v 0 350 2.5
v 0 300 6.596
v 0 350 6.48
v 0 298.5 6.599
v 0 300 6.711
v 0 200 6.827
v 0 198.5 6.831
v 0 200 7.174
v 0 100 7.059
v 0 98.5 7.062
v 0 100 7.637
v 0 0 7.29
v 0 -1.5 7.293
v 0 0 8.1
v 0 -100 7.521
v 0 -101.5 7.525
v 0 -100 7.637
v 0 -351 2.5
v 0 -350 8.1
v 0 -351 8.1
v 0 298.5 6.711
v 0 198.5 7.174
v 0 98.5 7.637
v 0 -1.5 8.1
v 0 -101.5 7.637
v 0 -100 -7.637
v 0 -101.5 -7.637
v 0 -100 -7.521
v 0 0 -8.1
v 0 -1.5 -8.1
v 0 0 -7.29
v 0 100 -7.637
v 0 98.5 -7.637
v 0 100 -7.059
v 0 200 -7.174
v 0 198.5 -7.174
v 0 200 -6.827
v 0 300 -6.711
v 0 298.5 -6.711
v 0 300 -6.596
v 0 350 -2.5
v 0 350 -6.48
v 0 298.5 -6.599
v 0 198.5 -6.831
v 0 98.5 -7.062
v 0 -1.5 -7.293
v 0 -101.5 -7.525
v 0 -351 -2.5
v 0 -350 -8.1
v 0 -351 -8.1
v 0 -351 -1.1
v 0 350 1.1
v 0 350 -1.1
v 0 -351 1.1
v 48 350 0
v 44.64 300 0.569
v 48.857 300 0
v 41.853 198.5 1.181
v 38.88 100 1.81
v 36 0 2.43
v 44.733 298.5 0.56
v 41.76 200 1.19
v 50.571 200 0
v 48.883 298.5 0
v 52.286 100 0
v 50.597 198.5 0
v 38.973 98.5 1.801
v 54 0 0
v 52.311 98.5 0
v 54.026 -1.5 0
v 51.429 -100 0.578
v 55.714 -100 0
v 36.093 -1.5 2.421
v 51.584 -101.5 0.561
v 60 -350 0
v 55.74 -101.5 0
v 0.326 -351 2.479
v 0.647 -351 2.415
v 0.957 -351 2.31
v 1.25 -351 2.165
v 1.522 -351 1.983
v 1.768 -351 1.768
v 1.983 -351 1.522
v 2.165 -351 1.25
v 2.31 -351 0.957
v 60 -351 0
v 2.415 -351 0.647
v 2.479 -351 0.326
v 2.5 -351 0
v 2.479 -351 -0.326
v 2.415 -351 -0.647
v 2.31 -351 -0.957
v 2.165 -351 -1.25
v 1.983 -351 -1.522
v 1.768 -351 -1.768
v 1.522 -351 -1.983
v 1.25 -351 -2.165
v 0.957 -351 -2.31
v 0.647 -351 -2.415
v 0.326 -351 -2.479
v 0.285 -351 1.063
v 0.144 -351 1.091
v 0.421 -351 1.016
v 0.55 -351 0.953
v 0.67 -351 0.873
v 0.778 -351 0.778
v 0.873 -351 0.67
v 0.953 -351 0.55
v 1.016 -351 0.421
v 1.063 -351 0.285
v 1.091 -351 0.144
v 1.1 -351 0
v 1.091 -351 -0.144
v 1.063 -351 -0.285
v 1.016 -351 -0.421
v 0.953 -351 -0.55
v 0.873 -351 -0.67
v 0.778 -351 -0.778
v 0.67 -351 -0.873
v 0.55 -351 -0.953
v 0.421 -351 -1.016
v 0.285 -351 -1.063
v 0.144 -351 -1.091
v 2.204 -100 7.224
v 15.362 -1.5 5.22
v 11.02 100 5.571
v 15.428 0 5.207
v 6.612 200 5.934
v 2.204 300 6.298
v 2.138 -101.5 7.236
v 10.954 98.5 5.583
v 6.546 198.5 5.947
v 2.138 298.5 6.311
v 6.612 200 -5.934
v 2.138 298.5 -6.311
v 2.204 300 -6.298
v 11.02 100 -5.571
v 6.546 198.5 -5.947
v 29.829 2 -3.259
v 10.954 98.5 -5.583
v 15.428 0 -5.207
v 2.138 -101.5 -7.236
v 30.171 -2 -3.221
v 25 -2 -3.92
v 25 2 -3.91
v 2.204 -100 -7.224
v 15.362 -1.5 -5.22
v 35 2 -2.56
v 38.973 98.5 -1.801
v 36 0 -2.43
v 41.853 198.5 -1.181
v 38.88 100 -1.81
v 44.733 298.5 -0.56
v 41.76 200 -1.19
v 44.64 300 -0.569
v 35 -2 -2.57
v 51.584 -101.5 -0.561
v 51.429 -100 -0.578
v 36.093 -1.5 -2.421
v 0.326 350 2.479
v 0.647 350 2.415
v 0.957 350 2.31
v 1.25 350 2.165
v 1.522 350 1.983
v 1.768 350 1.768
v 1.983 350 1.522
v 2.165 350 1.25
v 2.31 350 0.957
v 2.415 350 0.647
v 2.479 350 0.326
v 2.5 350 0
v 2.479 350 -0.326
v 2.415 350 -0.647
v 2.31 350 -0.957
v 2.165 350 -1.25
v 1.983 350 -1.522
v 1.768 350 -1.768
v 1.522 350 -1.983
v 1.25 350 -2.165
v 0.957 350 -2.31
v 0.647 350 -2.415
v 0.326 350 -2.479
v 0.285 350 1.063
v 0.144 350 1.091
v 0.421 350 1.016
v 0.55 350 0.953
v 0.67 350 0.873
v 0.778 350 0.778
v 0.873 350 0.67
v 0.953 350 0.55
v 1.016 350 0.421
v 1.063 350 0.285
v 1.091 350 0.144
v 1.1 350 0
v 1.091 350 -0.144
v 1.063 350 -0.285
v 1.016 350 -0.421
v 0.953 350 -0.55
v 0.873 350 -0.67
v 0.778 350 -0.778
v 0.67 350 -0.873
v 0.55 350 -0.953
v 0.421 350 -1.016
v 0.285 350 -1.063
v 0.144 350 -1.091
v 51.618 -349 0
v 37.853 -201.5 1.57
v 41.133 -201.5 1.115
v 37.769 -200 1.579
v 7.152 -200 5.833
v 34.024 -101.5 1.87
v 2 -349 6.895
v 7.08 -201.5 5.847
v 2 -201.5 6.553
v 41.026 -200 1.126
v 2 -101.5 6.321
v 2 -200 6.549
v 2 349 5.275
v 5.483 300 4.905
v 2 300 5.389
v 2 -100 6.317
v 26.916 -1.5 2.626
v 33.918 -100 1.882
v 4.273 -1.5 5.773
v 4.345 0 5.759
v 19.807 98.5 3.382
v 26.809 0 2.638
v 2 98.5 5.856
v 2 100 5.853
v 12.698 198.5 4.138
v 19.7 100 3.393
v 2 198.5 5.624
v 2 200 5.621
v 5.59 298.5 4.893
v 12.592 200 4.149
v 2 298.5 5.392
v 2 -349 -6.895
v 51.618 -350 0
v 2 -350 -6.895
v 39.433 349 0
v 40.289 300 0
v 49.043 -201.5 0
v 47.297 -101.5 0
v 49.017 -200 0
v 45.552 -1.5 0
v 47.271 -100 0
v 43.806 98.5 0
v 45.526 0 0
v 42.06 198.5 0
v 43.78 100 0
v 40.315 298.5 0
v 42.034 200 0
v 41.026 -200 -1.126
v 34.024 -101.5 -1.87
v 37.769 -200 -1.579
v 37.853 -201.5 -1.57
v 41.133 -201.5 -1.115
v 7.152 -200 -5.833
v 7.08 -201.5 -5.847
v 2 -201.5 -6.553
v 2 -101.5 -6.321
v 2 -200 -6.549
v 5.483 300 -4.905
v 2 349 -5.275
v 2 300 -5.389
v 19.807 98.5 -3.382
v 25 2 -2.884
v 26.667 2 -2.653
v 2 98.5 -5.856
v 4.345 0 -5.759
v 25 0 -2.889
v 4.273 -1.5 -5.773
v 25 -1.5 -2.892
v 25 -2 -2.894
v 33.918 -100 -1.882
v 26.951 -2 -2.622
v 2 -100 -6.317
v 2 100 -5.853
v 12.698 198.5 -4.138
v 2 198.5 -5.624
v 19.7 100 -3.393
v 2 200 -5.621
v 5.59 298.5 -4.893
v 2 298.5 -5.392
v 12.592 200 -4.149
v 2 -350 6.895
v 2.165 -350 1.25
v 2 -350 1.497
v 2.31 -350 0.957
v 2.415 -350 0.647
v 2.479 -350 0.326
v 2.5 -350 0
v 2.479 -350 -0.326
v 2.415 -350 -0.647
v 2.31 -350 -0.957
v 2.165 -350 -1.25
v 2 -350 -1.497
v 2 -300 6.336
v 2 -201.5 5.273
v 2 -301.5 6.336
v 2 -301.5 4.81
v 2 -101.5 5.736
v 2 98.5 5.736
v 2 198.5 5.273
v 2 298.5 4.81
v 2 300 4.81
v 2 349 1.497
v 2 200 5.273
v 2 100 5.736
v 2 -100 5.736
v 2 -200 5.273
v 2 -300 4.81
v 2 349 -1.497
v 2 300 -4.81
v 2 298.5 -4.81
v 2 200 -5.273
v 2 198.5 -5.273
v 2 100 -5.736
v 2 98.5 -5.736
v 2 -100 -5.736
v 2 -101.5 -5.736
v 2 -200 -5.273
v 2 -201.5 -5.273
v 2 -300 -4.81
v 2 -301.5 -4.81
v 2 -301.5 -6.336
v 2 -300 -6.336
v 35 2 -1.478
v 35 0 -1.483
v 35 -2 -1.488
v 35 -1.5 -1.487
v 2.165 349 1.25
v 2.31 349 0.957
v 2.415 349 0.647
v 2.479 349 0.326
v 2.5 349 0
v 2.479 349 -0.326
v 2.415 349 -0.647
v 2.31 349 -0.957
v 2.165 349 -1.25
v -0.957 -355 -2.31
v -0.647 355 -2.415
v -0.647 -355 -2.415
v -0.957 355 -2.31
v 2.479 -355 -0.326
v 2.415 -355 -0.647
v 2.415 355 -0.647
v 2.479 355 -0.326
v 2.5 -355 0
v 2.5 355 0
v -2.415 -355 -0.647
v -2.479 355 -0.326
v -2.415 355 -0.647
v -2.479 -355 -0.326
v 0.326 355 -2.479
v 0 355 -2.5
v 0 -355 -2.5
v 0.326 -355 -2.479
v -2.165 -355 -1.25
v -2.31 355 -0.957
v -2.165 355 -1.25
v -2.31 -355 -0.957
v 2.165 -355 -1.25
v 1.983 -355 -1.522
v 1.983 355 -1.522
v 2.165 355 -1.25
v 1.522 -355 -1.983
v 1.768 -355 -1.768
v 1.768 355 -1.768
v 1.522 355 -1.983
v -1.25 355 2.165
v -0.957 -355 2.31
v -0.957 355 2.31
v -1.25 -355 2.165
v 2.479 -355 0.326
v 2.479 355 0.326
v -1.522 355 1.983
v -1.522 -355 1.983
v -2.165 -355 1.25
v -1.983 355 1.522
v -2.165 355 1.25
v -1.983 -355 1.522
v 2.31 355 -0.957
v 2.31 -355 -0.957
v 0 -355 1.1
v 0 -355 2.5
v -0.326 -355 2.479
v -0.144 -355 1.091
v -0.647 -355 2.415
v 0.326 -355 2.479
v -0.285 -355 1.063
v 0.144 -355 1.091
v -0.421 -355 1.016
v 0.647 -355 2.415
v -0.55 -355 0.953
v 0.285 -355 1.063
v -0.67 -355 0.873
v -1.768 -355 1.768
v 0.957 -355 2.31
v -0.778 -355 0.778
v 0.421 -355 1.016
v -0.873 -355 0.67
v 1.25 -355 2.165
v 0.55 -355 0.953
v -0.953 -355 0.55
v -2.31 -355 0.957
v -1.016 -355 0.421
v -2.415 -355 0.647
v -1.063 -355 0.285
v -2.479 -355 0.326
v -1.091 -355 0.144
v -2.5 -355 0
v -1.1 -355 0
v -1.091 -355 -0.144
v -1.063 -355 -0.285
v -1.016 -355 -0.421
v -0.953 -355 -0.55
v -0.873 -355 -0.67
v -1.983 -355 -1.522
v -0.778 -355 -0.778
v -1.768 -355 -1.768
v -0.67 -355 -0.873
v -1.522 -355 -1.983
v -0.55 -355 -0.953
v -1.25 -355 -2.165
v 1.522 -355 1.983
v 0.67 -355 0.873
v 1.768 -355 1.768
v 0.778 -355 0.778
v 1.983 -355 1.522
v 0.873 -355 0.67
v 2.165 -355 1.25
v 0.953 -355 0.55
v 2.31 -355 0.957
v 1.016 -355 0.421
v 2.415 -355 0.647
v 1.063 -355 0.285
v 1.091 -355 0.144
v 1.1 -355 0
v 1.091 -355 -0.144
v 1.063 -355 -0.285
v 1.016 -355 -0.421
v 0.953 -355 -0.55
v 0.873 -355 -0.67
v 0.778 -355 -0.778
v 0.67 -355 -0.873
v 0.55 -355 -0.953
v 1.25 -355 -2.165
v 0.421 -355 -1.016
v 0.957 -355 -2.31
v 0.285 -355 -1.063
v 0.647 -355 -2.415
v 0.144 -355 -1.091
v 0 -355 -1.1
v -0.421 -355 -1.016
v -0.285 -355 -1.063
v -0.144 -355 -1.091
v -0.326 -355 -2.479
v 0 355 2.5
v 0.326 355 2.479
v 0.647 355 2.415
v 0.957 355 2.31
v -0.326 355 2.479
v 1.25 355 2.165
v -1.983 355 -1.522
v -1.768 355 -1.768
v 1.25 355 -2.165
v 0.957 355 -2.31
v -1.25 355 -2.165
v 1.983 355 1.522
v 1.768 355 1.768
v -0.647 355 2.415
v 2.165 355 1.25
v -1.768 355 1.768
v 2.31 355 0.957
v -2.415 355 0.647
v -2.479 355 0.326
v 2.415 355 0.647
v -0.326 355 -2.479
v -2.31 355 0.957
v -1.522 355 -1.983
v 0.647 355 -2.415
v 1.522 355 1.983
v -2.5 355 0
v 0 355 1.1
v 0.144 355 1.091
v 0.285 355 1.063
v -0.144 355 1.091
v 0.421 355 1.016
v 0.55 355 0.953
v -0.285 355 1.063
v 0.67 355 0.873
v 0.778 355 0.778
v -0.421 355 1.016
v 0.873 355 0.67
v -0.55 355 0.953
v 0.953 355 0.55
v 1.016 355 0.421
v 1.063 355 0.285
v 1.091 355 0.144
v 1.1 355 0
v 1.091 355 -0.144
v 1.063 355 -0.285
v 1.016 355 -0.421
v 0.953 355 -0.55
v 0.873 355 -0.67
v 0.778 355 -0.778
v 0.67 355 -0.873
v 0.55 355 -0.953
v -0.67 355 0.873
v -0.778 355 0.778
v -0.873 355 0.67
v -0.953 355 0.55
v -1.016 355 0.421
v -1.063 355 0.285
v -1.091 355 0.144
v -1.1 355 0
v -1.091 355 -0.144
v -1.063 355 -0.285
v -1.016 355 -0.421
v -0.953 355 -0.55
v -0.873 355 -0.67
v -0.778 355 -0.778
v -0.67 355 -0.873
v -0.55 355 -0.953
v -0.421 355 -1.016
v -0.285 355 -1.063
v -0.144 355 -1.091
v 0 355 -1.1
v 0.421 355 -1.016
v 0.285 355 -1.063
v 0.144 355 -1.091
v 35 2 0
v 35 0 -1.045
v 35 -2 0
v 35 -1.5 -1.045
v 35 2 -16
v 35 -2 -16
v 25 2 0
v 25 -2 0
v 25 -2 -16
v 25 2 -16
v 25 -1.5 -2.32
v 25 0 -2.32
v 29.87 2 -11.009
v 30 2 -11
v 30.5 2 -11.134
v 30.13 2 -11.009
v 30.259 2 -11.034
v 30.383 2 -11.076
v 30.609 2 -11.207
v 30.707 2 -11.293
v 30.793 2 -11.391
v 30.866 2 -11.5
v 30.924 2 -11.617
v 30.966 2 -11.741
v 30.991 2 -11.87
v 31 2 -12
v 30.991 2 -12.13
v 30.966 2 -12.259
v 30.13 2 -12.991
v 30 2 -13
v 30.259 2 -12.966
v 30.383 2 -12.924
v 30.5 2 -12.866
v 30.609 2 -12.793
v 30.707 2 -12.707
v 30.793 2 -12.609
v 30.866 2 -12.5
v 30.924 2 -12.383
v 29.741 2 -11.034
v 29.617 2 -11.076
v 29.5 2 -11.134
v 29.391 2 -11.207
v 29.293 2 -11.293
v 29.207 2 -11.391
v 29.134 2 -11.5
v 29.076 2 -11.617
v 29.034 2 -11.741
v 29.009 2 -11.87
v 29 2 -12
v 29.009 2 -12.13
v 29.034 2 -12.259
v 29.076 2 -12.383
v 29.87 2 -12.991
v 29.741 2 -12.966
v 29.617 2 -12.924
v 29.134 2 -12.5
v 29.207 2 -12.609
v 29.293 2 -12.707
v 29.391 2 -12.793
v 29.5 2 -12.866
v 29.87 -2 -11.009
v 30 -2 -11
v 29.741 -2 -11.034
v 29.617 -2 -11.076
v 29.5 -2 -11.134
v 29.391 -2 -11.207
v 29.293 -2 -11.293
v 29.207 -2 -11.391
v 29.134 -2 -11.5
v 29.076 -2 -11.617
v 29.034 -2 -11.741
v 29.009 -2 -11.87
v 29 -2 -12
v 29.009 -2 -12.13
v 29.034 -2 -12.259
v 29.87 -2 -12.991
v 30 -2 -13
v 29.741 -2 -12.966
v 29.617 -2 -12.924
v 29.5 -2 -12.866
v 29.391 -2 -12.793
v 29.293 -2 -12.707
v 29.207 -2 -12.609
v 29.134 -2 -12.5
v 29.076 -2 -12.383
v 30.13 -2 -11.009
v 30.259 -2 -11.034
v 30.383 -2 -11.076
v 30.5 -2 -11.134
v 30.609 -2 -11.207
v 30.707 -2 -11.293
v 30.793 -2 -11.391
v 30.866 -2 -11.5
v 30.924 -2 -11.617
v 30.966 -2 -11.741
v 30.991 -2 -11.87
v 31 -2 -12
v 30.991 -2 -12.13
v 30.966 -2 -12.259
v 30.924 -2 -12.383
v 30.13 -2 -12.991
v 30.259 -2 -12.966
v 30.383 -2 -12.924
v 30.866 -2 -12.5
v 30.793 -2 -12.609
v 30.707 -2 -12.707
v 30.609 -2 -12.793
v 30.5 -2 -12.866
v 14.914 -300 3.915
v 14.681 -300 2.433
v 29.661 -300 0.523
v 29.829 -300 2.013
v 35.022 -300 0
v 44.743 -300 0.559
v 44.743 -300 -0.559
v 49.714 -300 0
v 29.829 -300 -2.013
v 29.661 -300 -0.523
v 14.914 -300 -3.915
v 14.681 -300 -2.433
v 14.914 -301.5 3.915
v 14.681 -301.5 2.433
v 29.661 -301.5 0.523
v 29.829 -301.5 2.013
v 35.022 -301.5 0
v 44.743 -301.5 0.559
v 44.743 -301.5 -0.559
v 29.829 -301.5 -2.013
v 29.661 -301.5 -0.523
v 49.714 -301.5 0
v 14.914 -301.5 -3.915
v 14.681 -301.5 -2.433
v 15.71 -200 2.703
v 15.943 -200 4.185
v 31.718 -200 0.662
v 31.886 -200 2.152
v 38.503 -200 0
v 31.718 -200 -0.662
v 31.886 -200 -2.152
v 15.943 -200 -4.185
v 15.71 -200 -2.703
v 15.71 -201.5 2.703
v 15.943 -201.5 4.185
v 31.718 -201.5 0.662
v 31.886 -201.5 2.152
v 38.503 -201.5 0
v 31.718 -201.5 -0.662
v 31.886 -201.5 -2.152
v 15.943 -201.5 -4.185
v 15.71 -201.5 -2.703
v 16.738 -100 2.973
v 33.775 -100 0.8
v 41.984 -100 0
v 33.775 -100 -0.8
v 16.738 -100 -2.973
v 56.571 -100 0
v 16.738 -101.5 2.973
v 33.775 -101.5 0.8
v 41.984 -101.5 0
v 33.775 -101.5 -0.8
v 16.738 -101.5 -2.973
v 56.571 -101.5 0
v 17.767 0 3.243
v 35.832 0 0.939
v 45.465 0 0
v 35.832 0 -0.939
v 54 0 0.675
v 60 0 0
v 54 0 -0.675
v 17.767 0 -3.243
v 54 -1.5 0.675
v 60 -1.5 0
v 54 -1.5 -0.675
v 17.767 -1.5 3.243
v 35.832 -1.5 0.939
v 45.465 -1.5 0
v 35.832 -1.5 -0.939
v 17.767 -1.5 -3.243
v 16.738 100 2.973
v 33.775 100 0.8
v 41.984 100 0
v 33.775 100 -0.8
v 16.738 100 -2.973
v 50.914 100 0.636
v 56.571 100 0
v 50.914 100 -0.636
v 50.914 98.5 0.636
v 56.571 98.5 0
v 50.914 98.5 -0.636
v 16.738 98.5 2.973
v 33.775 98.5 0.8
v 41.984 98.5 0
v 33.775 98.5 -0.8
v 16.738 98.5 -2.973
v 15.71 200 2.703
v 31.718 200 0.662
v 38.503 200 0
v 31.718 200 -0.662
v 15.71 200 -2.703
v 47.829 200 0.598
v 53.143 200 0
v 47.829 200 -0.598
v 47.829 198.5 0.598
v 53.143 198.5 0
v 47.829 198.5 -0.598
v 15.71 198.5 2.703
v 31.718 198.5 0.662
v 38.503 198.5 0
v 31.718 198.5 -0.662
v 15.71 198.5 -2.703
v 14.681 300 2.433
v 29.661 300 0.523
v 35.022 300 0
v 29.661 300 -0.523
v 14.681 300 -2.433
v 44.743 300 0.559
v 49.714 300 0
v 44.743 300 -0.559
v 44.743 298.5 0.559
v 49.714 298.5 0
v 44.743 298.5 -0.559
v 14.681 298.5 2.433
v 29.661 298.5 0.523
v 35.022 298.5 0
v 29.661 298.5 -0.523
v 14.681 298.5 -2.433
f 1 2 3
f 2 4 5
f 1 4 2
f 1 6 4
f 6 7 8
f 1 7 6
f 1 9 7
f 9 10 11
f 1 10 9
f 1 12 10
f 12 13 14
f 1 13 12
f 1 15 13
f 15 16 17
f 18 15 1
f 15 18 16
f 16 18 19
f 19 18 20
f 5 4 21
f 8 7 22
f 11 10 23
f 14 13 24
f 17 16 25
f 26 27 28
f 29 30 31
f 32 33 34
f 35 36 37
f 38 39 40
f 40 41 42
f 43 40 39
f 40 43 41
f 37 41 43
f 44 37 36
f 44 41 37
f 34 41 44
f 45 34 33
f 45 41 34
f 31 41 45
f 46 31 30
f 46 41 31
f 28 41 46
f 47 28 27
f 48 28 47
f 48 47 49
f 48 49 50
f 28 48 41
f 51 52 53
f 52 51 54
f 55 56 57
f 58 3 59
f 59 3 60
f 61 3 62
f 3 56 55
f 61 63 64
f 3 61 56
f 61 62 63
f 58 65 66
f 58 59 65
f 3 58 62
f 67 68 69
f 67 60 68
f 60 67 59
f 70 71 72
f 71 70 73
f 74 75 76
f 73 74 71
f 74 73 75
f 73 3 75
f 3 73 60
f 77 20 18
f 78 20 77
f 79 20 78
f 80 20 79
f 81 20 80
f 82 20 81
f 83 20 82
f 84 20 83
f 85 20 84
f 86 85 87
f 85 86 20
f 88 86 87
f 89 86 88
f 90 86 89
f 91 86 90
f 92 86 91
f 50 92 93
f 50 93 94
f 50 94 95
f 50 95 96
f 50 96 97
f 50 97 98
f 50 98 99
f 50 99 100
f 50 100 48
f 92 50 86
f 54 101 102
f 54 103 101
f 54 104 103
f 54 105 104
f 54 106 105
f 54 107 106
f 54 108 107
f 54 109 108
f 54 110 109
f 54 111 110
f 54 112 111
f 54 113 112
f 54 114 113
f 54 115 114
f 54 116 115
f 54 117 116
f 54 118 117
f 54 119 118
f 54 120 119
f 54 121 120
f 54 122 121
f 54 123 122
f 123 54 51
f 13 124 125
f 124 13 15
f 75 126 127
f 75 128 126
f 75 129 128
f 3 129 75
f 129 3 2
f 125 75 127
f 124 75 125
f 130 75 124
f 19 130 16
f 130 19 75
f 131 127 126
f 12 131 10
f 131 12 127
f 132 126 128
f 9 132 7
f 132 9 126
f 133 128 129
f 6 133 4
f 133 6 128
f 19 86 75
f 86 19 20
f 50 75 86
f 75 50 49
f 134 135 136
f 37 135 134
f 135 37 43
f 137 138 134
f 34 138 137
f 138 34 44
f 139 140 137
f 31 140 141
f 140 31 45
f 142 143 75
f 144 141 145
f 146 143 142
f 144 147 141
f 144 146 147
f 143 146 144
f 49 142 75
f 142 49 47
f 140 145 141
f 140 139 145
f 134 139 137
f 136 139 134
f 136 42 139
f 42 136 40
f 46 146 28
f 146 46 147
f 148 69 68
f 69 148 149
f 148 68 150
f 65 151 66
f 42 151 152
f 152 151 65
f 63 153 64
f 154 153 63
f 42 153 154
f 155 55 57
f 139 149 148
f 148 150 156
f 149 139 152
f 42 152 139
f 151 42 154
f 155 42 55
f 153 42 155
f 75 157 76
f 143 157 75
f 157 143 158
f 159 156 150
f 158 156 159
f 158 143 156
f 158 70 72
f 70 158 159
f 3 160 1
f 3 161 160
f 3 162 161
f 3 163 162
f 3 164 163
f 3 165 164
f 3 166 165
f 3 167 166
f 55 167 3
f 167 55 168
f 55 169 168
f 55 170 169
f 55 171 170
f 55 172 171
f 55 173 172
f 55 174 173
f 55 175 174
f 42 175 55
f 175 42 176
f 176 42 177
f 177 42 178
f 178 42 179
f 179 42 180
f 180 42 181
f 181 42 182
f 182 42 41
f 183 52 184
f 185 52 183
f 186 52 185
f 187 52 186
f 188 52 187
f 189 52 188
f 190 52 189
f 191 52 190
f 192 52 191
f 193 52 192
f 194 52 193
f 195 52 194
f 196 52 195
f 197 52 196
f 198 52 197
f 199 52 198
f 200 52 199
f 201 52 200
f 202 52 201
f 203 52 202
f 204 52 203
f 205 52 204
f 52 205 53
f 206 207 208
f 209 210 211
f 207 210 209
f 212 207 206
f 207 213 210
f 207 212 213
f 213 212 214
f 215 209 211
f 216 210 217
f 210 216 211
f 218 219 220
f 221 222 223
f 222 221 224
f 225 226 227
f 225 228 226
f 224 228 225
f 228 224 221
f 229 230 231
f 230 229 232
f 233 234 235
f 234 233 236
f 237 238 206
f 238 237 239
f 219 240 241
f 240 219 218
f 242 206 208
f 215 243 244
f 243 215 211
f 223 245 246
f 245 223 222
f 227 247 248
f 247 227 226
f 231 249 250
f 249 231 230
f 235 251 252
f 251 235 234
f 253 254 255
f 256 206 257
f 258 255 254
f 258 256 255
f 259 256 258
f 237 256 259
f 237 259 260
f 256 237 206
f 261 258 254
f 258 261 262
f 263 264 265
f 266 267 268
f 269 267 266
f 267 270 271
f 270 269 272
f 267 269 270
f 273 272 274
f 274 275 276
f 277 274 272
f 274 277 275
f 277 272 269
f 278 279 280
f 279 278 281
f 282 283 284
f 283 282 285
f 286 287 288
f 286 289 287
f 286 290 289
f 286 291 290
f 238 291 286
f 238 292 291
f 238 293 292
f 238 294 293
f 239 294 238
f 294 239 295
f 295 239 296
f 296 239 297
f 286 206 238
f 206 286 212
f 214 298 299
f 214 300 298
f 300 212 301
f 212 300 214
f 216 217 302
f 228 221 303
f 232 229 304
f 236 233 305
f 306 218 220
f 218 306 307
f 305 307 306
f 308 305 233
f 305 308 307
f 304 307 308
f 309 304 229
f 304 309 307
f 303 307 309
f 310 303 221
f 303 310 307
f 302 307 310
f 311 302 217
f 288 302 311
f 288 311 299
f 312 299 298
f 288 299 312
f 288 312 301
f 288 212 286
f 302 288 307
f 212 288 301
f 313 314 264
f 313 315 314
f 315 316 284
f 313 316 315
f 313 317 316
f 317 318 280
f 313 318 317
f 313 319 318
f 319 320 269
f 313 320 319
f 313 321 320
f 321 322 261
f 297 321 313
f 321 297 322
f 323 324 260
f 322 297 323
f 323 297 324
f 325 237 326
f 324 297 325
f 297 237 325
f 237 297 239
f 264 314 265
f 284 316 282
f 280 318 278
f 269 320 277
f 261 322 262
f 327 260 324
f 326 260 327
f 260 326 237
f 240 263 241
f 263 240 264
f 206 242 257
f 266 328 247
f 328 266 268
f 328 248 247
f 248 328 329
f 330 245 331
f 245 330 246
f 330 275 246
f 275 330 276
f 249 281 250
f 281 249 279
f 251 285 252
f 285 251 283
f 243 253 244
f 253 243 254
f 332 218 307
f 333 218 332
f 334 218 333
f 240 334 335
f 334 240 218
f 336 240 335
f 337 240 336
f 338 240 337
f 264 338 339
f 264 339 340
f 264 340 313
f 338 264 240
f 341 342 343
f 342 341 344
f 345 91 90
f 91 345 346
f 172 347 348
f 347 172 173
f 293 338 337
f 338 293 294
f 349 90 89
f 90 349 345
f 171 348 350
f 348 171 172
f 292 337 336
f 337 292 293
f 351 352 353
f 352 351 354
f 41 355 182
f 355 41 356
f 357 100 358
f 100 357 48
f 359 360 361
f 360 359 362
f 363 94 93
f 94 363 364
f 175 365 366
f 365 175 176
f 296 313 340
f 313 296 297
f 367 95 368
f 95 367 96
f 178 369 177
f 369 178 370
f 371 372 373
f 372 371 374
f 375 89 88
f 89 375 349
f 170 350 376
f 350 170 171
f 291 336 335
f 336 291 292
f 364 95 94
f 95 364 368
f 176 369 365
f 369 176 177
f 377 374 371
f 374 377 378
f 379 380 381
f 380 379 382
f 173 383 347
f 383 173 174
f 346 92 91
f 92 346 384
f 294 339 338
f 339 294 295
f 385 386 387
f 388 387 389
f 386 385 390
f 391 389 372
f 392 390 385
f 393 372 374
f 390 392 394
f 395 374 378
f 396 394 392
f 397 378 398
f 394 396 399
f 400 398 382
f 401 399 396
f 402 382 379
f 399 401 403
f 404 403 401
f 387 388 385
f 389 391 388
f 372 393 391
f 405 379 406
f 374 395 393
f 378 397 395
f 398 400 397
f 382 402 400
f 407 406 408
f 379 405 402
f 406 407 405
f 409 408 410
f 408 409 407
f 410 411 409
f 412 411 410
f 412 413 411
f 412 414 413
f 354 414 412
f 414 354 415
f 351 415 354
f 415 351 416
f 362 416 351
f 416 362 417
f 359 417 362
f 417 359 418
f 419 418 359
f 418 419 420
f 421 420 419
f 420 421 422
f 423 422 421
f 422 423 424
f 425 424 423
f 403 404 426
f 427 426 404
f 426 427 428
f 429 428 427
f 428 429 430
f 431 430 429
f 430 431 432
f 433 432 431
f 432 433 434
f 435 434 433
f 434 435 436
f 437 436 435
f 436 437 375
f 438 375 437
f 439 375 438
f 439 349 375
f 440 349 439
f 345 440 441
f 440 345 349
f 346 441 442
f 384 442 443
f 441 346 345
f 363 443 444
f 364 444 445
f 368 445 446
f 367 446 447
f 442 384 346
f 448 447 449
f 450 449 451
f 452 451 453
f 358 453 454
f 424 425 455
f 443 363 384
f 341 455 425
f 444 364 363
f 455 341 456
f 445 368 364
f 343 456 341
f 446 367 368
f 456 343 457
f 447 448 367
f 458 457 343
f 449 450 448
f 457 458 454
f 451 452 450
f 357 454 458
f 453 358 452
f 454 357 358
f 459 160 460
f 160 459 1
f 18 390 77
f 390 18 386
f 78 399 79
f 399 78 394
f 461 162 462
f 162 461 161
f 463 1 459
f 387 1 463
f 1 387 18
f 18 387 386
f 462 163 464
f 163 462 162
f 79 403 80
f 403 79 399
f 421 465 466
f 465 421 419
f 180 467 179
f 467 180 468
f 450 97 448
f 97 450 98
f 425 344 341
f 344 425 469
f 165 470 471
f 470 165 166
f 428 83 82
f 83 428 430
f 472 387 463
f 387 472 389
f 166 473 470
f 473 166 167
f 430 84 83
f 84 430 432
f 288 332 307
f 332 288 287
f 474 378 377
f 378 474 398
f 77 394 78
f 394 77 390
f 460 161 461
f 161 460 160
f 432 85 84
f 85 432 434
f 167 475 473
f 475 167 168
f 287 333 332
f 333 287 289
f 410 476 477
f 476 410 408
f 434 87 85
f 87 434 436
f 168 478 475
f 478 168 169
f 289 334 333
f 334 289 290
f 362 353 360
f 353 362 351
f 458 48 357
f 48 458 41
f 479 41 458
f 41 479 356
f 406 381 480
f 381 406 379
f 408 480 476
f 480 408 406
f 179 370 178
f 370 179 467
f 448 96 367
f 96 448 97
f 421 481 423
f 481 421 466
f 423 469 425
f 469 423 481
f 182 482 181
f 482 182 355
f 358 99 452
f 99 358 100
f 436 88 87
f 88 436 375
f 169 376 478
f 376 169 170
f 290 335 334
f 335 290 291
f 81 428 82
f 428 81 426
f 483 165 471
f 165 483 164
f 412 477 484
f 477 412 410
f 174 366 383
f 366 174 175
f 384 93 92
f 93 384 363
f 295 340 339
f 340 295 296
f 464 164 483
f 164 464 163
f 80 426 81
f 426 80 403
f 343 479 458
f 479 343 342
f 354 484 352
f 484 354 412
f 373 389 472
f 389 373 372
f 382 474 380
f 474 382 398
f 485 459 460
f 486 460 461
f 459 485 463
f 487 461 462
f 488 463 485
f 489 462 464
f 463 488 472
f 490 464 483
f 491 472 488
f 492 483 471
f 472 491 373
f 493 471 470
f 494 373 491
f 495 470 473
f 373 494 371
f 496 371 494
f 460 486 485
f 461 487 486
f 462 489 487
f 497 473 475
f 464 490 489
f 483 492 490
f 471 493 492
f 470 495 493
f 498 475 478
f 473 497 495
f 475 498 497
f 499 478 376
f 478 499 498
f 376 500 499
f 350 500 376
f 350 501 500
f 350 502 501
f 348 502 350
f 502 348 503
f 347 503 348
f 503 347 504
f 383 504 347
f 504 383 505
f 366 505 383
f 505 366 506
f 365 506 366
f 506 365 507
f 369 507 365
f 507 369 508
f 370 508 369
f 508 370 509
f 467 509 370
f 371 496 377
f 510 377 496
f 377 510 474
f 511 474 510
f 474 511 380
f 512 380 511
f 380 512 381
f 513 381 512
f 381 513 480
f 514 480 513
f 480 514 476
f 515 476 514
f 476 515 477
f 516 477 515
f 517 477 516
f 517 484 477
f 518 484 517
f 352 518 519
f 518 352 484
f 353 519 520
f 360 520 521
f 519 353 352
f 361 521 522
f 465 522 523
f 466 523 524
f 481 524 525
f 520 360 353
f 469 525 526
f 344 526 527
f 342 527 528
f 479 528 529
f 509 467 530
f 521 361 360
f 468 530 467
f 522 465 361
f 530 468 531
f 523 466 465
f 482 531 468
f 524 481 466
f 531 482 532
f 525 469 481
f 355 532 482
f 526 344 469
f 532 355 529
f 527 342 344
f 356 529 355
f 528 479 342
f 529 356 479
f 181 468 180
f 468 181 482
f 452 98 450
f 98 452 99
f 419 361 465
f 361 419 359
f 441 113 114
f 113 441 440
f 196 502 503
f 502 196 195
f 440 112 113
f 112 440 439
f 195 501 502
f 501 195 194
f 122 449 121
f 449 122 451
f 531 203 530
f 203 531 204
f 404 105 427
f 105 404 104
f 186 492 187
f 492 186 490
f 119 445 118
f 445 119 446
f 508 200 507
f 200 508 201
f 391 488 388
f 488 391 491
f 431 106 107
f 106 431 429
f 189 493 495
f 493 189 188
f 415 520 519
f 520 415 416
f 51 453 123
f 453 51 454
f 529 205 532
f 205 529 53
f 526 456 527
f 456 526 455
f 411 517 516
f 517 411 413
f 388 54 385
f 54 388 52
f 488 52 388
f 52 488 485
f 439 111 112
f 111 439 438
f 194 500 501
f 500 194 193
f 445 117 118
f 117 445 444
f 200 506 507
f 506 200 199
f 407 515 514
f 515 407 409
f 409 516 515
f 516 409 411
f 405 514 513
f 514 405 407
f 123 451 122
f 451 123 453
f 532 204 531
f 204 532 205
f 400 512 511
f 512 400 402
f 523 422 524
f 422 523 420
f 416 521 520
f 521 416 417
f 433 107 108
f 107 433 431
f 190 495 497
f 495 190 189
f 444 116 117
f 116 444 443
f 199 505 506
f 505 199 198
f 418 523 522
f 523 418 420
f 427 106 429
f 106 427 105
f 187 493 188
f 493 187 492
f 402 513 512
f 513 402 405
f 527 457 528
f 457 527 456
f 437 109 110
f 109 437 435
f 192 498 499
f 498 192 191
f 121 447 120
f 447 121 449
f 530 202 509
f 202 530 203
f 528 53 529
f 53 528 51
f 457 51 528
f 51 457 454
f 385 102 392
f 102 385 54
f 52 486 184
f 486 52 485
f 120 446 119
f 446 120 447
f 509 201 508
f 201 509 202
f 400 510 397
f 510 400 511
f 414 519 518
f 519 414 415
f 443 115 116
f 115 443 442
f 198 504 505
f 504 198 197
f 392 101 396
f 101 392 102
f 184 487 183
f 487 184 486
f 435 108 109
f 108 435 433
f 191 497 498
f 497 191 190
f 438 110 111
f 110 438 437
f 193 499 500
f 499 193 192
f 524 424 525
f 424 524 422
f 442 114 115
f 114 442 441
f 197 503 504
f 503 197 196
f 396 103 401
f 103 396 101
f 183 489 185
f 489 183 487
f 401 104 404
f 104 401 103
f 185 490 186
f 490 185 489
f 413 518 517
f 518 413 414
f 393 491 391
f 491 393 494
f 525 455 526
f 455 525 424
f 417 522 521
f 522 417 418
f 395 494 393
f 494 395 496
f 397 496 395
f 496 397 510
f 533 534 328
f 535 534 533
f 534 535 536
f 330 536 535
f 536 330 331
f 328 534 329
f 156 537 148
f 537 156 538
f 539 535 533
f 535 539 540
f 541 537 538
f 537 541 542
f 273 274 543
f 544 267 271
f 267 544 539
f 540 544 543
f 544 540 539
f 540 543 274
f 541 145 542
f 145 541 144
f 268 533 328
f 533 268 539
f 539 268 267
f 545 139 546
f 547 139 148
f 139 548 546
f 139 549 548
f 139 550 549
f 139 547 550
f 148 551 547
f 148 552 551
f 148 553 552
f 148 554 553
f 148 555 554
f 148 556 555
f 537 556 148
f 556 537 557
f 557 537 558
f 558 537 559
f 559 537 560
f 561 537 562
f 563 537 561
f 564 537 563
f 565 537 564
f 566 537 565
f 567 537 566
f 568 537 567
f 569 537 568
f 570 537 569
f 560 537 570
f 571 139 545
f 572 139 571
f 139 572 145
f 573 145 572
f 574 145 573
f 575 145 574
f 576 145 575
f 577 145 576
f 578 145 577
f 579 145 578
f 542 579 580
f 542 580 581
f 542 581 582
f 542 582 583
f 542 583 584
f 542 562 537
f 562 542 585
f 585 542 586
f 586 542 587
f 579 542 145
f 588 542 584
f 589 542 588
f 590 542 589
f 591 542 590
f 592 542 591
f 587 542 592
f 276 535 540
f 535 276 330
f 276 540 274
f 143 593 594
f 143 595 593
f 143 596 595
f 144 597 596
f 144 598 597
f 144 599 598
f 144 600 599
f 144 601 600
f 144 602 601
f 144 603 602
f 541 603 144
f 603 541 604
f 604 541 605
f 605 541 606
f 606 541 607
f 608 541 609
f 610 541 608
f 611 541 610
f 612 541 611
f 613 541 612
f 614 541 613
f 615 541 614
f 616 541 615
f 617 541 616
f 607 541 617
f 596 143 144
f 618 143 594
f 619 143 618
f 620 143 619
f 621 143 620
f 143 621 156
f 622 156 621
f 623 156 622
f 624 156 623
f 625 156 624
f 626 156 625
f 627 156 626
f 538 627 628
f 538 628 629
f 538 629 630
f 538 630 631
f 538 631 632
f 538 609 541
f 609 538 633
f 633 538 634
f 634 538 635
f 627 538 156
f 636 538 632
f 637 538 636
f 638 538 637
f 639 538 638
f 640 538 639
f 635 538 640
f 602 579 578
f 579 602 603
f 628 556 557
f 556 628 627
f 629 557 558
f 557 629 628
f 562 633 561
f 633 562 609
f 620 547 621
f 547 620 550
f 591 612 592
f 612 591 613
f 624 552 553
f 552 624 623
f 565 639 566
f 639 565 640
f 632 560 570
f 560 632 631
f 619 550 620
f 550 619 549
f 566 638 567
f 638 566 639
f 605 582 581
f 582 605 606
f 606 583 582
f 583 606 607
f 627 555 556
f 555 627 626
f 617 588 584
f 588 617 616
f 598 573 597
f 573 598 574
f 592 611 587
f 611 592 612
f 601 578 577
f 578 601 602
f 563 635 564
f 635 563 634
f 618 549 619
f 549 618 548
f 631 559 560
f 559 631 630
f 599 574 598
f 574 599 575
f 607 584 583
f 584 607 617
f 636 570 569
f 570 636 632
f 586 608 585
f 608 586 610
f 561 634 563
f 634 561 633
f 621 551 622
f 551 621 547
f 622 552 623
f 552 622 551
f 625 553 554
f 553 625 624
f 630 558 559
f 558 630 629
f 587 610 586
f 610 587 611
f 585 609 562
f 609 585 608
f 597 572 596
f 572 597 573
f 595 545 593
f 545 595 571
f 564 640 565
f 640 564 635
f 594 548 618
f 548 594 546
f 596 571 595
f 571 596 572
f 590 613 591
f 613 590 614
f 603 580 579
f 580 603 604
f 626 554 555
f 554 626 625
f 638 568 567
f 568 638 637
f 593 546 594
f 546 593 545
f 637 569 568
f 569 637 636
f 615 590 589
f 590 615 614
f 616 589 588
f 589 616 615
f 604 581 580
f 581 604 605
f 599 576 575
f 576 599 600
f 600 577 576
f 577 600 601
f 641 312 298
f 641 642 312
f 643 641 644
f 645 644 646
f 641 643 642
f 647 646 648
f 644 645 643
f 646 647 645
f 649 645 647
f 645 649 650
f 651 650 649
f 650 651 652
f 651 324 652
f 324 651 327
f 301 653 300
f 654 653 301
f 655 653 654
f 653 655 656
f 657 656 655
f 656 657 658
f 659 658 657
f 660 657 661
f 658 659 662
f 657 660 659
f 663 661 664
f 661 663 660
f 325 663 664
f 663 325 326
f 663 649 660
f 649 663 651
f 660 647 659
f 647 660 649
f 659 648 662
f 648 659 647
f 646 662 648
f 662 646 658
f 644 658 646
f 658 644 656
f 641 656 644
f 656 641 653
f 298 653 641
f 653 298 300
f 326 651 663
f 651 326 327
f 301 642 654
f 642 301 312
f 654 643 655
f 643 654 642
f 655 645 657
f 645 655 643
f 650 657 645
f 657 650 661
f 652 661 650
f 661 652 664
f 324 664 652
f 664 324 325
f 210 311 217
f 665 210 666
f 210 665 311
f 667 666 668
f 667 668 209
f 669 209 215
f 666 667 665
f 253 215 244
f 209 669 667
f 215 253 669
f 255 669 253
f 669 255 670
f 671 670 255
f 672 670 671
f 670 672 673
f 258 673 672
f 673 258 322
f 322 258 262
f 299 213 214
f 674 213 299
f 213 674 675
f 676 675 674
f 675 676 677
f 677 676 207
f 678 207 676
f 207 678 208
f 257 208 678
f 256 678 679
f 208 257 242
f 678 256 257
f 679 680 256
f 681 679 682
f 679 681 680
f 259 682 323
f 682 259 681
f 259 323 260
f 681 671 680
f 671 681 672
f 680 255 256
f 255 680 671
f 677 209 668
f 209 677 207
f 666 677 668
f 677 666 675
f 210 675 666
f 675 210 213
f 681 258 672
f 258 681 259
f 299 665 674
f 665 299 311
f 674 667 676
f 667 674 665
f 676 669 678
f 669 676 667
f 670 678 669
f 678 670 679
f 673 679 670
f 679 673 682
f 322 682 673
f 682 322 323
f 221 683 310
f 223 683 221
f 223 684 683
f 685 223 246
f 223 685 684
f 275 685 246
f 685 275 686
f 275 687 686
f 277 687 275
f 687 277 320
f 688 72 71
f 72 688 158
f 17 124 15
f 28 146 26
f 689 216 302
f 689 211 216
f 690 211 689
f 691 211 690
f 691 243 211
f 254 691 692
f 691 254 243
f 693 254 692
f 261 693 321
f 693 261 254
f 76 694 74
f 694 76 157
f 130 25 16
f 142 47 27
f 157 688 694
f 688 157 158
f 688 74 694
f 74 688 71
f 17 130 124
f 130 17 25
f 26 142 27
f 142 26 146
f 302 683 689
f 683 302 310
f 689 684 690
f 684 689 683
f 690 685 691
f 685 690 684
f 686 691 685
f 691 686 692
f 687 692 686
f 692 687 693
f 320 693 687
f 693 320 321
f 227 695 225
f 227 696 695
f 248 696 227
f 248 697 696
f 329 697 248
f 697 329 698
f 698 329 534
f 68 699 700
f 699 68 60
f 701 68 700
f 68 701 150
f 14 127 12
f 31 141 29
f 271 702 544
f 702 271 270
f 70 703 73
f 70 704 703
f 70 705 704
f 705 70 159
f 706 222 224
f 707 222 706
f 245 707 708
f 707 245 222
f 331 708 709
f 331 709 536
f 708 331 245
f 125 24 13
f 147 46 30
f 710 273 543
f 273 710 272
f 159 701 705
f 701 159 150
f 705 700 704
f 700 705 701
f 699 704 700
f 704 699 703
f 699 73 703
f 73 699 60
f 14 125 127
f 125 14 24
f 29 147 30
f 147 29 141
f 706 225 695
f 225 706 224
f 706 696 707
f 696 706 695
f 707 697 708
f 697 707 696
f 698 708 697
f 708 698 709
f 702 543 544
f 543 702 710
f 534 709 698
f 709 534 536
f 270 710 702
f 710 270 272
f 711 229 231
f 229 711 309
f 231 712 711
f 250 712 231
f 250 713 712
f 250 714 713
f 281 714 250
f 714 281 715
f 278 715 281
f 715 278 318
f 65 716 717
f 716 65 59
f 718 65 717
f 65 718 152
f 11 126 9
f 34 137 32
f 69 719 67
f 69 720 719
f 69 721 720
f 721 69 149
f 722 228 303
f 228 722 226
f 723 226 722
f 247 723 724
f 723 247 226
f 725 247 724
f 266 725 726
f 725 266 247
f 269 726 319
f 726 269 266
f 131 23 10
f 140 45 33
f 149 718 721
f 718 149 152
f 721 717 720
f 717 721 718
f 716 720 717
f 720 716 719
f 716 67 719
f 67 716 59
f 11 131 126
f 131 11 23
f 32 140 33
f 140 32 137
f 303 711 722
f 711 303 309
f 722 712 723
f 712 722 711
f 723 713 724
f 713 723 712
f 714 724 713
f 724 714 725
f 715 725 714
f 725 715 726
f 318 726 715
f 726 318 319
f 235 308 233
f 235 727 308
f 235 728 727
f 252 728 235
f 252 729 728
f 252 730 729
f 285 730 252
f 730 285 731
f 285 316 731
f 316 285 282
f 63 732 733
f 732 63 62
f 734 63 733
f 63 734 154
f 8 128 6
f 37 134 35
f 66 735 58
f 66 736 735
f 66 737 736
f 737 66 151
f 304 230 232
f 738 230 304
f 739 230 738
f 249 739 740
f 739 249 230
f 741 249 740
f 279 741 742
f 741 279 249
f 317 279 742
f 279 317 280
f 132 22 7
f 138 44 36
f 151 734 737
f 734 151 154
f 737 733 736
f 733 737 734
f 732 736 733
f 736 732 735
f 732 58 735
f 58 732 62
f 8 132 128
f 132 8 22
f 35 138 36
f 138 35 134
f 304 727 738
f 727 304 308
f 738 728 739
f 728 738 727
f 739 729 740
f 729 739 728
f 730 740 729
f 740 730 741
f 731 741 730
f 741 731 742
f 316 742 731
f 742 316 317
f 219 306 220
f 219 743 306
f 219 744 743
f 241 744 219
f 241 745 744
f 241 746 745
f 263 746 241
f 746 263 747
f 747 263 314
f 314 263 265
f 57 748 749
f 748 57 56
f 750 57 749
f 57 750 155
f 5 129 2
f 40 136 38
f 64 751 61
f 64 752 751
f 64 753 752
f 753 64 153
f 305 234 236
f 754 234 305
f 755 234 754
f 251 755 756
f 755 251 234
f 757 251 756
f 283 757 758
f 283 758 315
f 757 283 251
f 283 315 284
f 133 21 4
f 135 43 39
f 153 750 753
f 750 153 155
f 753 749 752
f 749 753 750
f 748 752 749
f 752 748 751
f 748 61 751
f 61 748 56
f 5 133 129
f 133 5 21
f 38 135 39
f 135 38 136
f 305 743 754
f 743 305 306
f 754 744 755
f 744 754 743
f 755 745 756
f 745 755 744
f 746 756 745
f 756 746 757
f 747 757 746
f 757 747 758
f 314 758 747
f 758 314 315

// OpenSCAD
// file: ../../lib/profiles.scad
// Knihovna leteckych profilu pro RC letadlo
// Vsechny rozmery v milimetrech

// Clark-Y profil (zjednoduseny) - pro kridlo
// Vraci 2D polygon profilu normalizovany na hloubku 1
function clark_y_upper() = [
    [1.000, 0.0013],
    [0.950, 0.0114],
    [0.900, 0.0208],
    [0.800, 0.0375],
    [0.700, 0.0518],
    [0.600, 0.0636],
    [0.500, 0.0724],
    [0.400, 0.0780],
    [0.300, 0.0788],
    [0.250, 0.0767],
    [0.200, 0.0726],
    [0.150, 0.0661],
    [0.100, 0.0563],
    [0.075, 0.0496],
    [0.050, 0.0413],
    [0.025, 0.0299],
    [0.0125,0.0215],
    [0.000, 0.0000]
];

function clark_y_lower() = [
    [0.000, 0.0000],
    [0.0125,-0.0095],
    [0.025, -0.0116],
    [0.050, -0.0126],
    [0.075, -0.0119],
    [0.100, -0.0104],
    [0.150, -0.0069],
    [0.200, -0.0040],
    [0.250, -0.0018],
    [0.300, -0.0005],
    [0.400, 0.0003],
    [0.500, 0.0000],
    [0.600, -0.0003],
    [0.700, -0.0003],
    [0.800, 0.0000],
    [0.900, 0.0005],
    [0.950, 0.0007],
    [1.000, 0.0013]
];

function clark_y_points() = concat(clark_y_upper(), clark_y_lower());

module clark_y_profile(chord) {
    pts = concat(clark_y_upper(), clark_y_lower());
    scale([chord, chord, 1])
        polygon([for (p = pts) [p[0], p[1]]]);
}

// NACA 0009 symetricky profil - pro ocasni plochy
function naca0009_half() = [
    [0.000, 0.0000],
    [0.0125, 0.0112],
    [0.025, 0.0155],
    [0.050, 0.0212],
    [0.075, 0.0253],
    [0.100, 0.0283],
    [0.150, 0.0326],
    [0.200, 0.0350],
    [0.250, 0.0361],
    [0.300, 0.0362],
    [0.400, 0.0341],
    [0.500, 0.0298],
    [0.600, 0.0241],
    [0.700, 0.0177],
    [0.800, 0.0112],
    [0.900, 0.0053],
    [0.950, 0.0027],
    [1.000, 0.0005]
];

module naca0009_profile(chord) {
    upper = naca0009_half();
    lower = [for (i = [len(upper)-1:-1:0]) [upper[i][0], -upper[i][1]]];
    pts = concat(upper, [for (i = [1:len(lower)-1]) lower[i]]);
    scale([chord, chord, 1])
        polygon([for (p = pts) [p[0], p[1]]]);
}

// Ovalny prurezu trupu
module oval_profile(width, height) {
    scale([width/2, height/2])
        circle(r=1, $fn=64);
}

// Zaobleny obdelnik
module rounded_rect(w, h, r) {
    offset(r=r)
        square([w - 2*r, h - 2*r], center=true);
}
// main file
// Výškové kormidlo - zadních 40% VOP
// NACA 0009 profil (zadní část), rozpětí 700mm celkem
// Material: PLA-LW, 10% výplň, 2 perimetry

use <../../lib/profiles.scad>;

$fn = 48;

rozpeti = 700; // celkové rozpětí
hloubka_plna = 150;
hloubka_konec = 120;
kormidlo_pomer = 0.40;
hloubka_korm = hloubka_plna * kormidlo_pomer; // 60mm
hloubka_korm_konec = hloubka_konec * kormidlo_pomer; // 48mm
tl = 1.0;

module vyskove_kormidlo() {
    difference() {
        // Tvar kormidla - zadní část profilu
        hull() {
            translate([0, -rozpeti/2, 0])
                rotate([90, 0, 0])
                    linear_extrude(1)
                        kormidlo_profil(hloubka_plna, hloubka_korm);
            translate([0, rozpeti/2, 0])
                rotate([90, 0, 0])
                    linear_extrude(1)
                        kormidlo_profil(hloubka_konec, hloubka_korm_konec);
        }

        // Dutina
        hull() {
            translate([tl, -rozpeti/2 + tl, 0])
                rotate([90, 0, 0])
                    linear_extrude(1)
                        offset(delta=-tl)
                            kormidlo_profil(hloubka_plna, hloubka_korm);
            translate([tl, rozpeti/2 - tl, 0])
                rotate([90, 0, 0])
                    linear_extrude(1)
                        offset(delta=-tl)
                            kormidlo_profil(hloubka_konec, hloubka_korm_konec);
        }
    }

    // Pantová osa - trubička na náběžné hraně kormidla
    translate([0, -rozpeti/2 - 5, 0])
        rotate([-90, 0, 0])
            difference() {
                cylinder(d=5, h=rozpeti + 10);
                cylinder(d=2.2, h=rozpeti + 12);
            }

    // Páka pro táhlo serva (uprostřed)
    translate([hloubka_korm * 0.5, 0, -8])
        difference() {
            cube([10, 4, 16], center=true);
            translate([0, 0, -4])
                rotate([90, 0, 0])
                    cylinder(d=2, h=6, center=true);
        }

    // Žebra
    for (i = [-3:3]) {
        pos_y = i * (rozpeti / 7);
        frac = abs(i) / 3.5;
        h_full = hloubka_plna + (hloubka_konec - hloubka_plna) * frac;
        h_korm = h_full * kormidlo_pomer;
        translate([0, pos_y, 0])
            rotate([90, 0, 0])
                linear_extrude(1.5)
                    difference() {
                        kormidlo_profil(h_full, h_korm);
                        offset(delta=-1.5)
                            kormidlo_profil(h_full, h_korm);
                    }
    }
}

// Profil zadní části NACA 0009 (od 60% do 100% hloubky)
module kormidlo_profil(full_chord, korm_chord) {
    t = 0.09; // NACA 0009 max thickness
    // Zjednodušený profil zadní části
    polygon([
        [0, t * full_chord * 0.6],      // náběžná hrana kormidla (horní)
        [korm_chord * 0.3, t * full_chord * 0.35],
        [korm_chord * 0.6, t * full_chord * 0.18],
        [korm_chord * 0.9, t * full_chord * 0.05],
        [korm_chord, 0],                  // odtoková hrana
        [korm_chord * 0.9, -t * full_chord * 0.05],
        [korm_chord * 0.6, -t * full_chord * 0.18],
        [korm_chord * 0.3, -t * full_chord * 0.35],
        [0, -t * full_chord * 0.6]       // náběžná hrana kormidla (dolní)
    ]);
}

vyskove_kormidlo();
